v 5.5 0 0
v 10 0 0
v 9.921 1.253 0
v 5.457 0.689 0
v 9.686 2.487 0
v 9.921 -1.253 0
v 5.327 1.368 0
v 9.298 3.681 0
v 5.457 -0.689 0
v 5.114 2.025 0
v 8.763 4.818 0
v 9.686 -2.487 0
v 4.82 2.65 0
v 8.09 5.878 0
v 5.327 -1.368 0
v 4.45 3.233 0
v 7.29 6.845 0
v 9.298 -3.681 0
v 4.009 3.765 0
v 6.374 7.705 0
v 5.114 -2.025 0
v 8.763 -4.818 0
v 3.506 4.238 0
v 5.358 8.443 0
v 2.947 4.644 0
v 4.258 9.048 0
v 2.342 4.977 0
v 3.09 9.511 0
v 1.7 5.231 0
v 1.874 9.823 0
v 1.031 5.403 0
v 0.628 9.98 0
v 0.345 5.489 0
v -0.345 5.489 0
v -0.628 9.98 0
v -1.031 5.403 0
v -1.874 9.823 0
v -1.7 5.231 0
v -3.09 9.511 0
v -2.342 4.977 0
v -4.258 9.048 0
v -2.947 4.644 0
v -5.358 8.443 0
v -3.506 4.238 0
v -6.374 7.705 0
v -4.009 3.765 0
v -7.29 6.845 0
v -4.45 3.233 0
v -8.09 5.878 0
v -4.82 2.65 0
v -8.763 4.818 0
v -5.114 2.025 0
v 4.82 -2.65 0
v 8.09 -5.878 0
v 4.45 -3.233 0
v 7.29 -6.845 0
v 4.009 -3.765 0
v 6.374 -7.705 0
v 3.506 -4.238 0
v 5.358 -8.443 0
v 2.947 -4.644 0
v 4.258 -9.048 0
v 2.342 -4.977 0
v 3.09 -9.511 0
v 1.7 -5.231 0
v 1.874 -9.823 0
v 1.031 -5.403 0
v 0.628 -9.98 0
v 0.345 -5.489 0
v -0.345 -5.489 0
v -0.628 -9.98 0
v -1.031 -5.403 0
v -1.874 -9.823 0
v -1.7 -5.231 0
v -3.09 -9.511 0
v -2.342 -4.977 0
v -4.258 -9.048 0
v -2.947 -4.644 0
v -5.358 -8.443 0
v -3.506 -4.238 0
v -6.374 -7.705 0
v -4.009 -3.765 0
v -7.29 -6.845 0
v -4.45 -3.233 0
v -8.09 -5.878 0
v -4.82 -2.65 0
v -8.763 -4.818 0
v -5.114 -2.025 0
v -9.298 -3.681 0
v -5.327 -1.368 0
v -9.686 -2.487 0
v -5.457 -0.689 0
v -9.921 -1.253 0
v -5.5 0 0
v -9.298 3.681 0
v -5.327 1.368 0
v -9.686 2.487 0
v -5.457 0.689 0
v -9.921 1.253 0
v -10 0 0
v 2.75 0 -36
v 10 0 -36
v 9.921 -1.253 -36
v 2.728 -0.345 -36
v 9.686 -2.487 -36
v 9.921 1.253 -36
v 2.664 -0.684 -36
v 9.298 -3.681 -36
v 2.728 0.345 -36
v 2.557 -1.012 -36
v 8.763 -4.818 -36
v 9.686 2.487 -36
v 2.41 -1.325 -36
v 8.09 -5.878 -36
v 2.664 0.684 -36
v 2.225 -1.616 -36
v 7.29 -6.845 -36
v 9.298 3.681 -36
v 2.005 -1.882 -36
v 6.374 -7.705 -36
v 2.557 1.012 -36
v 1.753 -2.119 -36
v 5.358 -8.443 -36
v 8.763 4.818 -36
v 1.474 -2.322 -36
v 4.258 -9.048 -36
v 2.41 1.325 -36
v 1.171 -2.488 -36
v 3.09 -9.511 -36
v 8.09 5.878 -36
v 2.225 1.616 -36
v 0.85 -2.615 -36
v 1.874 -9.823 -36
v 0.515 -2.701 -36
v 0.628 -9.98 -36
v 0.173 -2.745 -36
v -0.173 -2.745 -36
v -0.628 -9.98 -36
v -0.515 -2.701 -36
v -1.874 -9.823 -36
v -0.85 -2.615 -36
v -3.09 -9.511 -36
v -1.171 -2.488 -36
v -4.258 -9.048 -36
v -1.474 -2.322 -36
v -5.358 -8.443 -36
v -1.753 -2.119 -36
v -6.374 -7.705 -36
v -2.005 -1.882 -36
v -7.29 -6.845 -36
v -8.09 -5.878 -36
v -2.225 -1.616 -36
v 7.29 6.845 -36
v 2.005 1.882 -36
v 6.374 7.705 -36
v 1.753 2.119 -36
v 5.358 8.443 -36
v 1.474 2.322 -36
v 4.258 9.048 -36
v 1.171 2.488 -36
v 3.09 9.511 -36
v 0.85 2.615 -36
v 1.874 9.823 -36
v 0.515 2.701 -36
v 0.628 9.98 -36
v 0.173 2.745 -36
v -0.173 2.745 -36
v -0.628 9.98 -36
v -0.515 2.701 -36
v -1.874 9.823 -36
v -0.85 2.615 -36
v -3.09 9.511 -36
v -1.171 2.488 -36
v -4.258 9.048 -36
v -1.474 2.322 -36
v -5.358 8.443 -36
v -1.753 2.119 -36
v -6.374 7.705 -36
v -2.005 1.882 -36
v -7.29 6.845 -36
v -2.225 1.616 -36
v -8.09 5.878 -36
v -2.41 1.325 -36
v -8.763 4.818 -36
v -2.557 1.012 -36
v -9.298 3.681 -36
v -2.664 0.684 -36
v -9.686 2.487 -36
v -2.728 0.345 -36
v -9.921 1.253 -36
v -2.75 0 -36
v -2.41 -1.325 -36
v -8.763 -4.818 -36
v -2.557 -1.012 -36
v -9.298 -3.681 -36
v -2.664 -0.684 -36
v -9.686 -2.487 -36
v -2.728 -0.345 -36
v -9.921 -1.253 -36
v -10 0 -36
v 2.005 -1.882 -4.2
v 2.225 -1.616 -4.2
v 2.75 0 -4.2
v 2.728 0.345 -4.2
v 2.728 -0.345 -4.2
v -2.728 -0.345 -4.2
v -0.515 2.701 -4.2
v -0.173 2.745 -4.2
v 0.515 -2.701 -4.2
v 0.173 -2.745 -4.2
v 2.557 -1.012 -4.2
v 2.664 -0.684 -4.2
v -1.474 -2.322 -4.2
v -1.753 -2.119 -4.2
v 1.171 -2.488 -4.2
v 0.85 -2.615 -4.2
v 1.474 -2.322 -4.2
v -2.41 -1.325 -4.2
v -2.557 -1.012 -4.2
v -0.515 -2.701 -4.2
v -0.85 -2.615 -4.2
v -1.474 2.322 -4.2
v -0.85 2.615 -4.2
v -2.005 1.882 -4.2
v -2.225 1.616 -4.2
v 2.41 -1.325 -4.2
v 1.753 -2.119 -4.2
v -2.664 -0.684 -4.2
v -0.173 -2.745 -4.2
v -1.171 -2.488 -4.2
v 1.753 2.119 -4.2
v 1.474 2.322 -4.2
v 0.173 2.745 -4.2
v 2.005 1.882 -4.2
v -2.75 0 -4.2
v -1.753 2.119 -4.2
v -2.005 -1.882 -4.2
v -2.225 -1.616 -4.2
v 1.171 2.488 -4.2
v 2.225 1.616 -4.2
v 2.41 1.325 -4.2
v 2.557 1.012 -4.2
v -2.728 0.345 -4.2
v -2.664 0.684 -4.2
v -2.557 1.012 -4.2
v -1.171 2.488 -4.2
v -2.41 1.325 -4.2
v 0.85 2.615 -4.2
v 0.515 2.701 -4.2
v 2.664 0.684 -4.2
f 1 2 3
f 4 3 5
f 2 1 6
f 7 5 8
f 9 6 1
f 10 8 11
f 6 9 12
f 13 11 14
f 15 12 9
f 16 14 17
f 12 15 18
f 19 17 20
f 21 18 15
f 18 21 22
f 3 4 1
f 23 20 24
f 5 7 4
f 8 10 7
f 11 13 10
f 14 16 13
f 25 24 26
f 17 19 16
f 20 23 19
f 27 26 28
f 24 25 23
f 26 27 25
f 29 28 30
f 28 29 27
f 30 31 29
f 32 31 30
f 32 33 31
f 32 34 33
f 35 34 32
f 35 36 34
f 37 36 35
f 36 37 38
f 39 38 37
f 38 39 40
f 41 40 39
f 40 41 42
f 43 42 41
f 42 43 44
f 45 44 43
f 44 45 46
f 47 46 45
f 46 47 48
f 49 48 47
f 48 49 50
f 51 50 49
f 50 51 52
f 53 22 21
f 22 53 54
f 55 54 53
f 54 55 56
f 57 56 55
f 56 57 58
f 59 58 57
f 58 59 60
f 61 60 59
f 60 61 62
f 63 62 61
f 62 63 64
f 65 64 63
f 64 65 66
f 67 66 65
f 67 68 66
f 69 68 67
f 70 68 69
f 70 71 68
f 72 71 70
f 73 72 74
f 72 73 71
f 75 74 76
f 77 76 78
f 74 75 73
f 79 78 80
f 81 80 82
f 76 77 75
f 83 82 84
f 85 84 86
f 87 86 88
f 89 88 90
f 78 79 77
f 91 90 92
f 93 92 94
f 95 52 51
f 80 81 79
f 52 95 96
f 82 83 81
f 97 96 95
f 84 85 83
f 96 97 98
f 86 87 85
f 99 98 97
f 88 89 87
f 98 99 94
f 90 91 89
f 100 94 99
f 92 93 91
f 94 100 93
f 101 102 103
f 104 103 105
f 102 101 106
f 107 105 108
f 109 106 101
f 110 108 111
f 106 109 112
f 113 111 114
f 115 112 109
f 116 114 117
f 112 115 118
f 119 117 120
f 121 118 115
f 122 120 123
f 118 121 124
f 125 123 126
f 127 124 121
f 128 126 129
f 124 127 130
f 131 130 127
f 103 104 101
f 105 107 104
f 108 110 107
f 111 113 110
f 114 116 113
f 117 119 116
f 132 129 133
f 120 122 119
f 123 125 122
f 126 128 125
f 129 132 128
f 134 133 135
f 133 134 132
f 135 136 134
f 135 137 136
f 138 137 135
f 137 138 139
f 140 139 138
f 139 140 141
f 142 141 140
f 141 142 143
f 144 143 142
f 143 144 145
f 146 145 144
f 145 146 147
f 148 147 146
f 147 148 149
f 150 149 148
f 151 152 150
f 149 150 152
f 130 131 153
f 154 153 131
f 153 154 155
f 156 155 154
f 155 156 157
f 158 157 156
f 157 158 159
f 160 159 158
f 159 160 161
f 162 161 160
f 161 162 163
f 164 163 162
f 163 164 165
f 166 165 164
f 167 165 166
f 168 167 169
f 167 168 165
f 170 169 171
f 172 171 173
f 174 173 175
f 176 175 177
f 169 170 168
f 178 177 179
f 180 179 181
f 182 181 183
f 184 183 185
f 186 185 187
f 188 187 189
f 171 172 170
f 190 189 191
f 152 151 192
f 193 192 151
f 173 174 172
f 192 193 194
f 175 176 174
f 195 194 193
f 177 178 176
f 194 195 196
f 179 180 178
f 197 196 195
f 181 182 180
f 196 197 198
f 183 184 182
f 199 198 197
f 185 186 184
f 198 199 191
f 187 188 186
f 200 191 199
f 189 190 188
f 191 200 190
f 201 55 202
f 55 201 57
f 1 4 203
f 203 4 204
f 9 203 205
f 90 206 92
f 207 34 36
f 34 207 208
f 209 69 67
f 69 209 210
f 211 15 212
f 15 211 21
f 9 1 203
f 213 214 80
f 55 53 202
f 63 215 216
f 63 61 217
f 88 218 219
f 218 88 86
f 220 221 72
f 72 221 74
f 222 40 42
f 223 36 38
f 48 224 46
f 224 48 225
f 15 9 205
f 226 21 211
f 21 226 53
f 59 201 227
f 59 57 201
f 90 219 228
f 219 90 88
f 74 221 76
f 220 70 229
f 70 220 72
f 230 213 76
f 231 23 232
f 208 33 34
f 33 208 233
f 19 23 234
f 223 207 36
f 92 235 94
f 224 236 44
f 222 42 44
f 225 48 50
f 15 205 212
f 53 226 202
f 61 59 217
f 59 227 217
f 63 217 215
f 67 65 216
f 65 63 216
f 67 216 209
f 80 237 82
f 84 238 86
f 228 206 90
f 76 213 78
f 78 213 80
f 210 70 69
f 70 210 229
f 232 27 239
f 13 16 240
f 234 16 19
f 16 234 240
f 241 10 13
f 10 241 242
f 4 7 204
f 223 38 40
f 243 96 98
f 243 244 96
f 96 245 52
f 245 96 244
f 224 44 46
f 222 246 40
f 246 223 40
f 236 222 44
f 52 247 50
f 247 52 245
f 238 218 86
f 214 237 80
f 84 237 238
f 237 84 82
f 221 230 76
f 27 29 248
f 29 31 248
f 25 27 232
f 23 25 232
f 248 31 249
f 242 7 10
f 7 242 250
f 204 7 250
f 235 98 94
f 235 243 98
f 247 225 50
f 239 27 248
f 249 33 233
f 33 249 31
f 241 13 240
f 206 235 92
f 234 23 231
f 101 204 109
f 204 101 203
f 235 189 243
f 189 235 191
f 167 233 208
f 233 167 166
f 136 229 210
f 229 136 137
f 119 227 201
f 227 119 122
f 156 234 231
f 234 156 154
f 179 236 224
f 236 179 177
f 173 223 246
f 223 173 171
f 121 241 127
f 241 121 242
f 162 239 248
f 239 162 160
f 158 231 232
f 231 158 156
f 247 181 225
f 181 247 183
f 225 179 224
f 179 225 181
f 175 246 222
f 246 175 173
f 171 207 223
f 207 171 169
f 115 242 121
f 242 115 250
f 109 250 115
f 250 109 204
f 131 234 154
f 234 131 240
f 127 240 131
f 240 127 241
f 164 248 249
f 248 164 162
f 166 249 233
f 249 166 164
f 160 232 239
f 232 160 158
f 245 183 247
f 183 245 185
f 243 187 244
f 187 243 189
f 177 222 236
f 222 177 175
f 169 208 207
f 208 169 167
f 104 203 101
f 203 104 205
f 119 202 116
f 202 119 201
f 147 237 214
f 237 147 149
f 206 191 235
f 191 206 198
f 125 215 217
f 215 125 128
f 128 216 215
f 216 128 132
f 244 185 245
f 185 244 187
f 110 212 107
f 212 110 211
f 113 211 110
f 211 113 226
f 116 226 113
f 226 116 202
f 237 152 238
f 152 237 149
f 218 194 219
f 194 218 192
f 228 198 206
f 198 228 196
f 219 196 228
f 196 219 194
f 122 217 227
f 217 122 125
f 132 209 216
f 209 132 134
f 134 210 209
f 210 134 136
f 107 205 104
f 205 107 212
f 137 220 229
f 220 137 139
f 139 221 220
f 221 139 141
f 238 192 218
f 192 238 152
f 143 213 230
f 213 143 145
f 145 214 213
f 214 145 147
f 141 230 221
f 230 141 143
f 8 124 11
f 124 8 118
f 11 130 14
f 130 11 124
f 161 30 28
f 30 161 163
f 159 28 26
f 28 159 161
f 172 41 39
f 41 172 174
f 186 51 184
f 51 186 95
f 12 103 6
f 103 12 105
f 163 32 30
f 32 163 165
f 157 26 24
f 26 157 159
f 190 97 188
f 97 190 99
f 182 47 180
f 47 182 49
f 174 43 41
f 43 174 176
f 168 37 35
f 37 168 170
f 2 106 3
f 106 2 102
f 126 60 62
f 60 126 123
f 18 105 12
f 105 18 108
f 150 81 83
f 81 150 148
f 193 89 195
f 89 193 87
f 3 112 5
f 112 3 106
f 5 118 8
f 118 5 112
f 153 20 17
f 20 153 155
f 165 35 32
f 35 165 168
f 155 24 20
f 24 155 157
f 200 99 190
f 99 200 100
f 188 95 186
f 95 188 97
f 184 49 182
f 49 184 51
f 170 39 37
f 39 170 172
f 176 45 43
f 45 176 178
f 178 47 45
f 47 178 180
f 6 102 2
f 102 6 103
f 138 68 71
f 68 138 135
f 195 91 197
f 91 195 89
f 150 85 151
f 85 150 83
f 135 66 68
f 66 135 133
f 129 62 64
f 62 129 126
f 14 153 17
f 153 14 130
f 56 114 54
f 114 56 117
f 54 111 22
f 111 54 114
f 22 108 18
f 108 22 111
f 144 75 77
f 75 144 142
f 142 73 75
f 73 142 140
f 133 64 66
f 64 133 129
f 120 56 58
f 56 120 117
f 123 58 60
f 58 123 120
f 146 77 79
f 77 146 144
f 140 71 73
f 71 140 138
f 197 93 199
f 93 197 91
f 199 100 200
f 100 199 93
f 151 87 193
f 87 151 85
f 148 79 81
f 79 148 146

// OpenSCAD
$fn = 50;


difference() {
	union() {
		translate(v = [0, 0, -36.0000000000]) {
			cylinder(h = 36, r = 10.0000000000);
		}
		cylinder(h = 0, r = 20.0000000000);
	}
	union() {
		translate(v = [0, 0, 0]) {
			rotate(a = [0, 0, 0]) {
				difference() {
					union() {
						#translate(v = [0, 0, -36.0000000000]) {
							cylinder(h = 36, r = 2.2500000000);
						}
						#translate(v = [0, 0, -4.2000000000]) {
							cylinder(h = 4.2000000000, r = 10.0000000000, r1 = 2.7500000000, r2 = 5.5000000000);
						}
						#translate(v = [0, 0, -36.0000000000]) {
							cylinder(h = 36, r = 2.7500000000);
						}
						#translate(v = [0, 0, -36.0000000000]) {
							cylinder(h = 36, r = 2.2500000000);
						}
					}
					union();
				}
			}
		}
	}
}
